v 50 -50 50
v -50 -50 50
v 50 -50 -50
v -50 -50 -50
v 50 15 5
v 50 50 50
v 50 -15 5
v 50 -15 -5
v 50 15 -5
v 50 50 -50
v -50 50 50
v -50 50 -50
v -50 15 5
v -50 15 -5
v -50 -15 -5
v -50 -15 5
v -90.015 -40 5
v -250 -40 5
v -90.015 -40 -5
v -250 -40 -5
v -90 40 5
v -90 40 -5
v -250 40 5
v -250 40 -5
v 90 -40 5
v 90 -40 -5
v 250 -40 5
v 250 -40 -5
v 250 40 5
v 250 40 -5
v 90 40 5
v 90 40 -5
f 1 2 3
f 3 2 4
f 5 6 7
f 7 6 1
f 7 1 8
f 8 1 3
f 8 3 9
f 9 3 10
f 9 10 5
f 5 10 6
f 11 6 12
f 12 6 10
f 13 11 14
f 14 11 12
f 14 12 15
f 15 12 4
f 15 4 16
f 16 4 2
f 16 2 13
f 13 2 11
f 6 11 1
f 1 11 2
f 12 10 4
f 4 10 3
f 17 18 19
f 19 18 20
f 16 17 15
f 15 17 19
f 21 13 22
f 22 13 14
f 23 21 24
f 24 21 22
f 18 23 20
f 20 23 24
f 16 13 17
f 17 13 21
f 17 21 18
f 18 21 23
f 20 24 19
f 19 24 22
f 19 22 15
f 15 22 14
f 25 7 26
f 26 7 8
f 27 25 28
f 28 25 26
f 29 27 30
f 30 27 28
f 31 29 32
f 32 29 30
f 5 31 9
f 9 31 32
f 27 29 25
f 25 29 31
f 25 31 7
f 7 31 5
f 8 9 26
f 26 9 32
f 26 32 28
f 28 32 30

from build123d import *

# Parameters (mm, degrees)
EXTRUDE_1_DEPTH = 50
EXTRUDE_2_DEPTH = 5


with BuildPart() as part:
    # 草图1 → 凸台-拉伸1 (new, symmetric)
    with BuildSketch(Plane.XY):
        Polygon((-50, -15), (-50, -50), (50, -50), (50, -15), (50, 15), (50, 50), (-50, 50), (-50, 15), align=None)
    extrude(amount=EXTRUDE_1_DEPTH, both=True)

    # 草图1<3> → 凸台-拉伸2 (add, symmetric)
    with BuildSketch(Plane.XY):
        Polygon((-90.014973854, -40), (-50, -15), (-50, 15), (-90, 40), (-250, 40), (-250, -40), align=None)
        Polygon((50, 15), (50, -15), (90, -40), (250, -40), (250, 40), (90, 40), align=None)
    extrude(amount=EXTRUDE_2_DEPTH, both=True)


solid = part.part
